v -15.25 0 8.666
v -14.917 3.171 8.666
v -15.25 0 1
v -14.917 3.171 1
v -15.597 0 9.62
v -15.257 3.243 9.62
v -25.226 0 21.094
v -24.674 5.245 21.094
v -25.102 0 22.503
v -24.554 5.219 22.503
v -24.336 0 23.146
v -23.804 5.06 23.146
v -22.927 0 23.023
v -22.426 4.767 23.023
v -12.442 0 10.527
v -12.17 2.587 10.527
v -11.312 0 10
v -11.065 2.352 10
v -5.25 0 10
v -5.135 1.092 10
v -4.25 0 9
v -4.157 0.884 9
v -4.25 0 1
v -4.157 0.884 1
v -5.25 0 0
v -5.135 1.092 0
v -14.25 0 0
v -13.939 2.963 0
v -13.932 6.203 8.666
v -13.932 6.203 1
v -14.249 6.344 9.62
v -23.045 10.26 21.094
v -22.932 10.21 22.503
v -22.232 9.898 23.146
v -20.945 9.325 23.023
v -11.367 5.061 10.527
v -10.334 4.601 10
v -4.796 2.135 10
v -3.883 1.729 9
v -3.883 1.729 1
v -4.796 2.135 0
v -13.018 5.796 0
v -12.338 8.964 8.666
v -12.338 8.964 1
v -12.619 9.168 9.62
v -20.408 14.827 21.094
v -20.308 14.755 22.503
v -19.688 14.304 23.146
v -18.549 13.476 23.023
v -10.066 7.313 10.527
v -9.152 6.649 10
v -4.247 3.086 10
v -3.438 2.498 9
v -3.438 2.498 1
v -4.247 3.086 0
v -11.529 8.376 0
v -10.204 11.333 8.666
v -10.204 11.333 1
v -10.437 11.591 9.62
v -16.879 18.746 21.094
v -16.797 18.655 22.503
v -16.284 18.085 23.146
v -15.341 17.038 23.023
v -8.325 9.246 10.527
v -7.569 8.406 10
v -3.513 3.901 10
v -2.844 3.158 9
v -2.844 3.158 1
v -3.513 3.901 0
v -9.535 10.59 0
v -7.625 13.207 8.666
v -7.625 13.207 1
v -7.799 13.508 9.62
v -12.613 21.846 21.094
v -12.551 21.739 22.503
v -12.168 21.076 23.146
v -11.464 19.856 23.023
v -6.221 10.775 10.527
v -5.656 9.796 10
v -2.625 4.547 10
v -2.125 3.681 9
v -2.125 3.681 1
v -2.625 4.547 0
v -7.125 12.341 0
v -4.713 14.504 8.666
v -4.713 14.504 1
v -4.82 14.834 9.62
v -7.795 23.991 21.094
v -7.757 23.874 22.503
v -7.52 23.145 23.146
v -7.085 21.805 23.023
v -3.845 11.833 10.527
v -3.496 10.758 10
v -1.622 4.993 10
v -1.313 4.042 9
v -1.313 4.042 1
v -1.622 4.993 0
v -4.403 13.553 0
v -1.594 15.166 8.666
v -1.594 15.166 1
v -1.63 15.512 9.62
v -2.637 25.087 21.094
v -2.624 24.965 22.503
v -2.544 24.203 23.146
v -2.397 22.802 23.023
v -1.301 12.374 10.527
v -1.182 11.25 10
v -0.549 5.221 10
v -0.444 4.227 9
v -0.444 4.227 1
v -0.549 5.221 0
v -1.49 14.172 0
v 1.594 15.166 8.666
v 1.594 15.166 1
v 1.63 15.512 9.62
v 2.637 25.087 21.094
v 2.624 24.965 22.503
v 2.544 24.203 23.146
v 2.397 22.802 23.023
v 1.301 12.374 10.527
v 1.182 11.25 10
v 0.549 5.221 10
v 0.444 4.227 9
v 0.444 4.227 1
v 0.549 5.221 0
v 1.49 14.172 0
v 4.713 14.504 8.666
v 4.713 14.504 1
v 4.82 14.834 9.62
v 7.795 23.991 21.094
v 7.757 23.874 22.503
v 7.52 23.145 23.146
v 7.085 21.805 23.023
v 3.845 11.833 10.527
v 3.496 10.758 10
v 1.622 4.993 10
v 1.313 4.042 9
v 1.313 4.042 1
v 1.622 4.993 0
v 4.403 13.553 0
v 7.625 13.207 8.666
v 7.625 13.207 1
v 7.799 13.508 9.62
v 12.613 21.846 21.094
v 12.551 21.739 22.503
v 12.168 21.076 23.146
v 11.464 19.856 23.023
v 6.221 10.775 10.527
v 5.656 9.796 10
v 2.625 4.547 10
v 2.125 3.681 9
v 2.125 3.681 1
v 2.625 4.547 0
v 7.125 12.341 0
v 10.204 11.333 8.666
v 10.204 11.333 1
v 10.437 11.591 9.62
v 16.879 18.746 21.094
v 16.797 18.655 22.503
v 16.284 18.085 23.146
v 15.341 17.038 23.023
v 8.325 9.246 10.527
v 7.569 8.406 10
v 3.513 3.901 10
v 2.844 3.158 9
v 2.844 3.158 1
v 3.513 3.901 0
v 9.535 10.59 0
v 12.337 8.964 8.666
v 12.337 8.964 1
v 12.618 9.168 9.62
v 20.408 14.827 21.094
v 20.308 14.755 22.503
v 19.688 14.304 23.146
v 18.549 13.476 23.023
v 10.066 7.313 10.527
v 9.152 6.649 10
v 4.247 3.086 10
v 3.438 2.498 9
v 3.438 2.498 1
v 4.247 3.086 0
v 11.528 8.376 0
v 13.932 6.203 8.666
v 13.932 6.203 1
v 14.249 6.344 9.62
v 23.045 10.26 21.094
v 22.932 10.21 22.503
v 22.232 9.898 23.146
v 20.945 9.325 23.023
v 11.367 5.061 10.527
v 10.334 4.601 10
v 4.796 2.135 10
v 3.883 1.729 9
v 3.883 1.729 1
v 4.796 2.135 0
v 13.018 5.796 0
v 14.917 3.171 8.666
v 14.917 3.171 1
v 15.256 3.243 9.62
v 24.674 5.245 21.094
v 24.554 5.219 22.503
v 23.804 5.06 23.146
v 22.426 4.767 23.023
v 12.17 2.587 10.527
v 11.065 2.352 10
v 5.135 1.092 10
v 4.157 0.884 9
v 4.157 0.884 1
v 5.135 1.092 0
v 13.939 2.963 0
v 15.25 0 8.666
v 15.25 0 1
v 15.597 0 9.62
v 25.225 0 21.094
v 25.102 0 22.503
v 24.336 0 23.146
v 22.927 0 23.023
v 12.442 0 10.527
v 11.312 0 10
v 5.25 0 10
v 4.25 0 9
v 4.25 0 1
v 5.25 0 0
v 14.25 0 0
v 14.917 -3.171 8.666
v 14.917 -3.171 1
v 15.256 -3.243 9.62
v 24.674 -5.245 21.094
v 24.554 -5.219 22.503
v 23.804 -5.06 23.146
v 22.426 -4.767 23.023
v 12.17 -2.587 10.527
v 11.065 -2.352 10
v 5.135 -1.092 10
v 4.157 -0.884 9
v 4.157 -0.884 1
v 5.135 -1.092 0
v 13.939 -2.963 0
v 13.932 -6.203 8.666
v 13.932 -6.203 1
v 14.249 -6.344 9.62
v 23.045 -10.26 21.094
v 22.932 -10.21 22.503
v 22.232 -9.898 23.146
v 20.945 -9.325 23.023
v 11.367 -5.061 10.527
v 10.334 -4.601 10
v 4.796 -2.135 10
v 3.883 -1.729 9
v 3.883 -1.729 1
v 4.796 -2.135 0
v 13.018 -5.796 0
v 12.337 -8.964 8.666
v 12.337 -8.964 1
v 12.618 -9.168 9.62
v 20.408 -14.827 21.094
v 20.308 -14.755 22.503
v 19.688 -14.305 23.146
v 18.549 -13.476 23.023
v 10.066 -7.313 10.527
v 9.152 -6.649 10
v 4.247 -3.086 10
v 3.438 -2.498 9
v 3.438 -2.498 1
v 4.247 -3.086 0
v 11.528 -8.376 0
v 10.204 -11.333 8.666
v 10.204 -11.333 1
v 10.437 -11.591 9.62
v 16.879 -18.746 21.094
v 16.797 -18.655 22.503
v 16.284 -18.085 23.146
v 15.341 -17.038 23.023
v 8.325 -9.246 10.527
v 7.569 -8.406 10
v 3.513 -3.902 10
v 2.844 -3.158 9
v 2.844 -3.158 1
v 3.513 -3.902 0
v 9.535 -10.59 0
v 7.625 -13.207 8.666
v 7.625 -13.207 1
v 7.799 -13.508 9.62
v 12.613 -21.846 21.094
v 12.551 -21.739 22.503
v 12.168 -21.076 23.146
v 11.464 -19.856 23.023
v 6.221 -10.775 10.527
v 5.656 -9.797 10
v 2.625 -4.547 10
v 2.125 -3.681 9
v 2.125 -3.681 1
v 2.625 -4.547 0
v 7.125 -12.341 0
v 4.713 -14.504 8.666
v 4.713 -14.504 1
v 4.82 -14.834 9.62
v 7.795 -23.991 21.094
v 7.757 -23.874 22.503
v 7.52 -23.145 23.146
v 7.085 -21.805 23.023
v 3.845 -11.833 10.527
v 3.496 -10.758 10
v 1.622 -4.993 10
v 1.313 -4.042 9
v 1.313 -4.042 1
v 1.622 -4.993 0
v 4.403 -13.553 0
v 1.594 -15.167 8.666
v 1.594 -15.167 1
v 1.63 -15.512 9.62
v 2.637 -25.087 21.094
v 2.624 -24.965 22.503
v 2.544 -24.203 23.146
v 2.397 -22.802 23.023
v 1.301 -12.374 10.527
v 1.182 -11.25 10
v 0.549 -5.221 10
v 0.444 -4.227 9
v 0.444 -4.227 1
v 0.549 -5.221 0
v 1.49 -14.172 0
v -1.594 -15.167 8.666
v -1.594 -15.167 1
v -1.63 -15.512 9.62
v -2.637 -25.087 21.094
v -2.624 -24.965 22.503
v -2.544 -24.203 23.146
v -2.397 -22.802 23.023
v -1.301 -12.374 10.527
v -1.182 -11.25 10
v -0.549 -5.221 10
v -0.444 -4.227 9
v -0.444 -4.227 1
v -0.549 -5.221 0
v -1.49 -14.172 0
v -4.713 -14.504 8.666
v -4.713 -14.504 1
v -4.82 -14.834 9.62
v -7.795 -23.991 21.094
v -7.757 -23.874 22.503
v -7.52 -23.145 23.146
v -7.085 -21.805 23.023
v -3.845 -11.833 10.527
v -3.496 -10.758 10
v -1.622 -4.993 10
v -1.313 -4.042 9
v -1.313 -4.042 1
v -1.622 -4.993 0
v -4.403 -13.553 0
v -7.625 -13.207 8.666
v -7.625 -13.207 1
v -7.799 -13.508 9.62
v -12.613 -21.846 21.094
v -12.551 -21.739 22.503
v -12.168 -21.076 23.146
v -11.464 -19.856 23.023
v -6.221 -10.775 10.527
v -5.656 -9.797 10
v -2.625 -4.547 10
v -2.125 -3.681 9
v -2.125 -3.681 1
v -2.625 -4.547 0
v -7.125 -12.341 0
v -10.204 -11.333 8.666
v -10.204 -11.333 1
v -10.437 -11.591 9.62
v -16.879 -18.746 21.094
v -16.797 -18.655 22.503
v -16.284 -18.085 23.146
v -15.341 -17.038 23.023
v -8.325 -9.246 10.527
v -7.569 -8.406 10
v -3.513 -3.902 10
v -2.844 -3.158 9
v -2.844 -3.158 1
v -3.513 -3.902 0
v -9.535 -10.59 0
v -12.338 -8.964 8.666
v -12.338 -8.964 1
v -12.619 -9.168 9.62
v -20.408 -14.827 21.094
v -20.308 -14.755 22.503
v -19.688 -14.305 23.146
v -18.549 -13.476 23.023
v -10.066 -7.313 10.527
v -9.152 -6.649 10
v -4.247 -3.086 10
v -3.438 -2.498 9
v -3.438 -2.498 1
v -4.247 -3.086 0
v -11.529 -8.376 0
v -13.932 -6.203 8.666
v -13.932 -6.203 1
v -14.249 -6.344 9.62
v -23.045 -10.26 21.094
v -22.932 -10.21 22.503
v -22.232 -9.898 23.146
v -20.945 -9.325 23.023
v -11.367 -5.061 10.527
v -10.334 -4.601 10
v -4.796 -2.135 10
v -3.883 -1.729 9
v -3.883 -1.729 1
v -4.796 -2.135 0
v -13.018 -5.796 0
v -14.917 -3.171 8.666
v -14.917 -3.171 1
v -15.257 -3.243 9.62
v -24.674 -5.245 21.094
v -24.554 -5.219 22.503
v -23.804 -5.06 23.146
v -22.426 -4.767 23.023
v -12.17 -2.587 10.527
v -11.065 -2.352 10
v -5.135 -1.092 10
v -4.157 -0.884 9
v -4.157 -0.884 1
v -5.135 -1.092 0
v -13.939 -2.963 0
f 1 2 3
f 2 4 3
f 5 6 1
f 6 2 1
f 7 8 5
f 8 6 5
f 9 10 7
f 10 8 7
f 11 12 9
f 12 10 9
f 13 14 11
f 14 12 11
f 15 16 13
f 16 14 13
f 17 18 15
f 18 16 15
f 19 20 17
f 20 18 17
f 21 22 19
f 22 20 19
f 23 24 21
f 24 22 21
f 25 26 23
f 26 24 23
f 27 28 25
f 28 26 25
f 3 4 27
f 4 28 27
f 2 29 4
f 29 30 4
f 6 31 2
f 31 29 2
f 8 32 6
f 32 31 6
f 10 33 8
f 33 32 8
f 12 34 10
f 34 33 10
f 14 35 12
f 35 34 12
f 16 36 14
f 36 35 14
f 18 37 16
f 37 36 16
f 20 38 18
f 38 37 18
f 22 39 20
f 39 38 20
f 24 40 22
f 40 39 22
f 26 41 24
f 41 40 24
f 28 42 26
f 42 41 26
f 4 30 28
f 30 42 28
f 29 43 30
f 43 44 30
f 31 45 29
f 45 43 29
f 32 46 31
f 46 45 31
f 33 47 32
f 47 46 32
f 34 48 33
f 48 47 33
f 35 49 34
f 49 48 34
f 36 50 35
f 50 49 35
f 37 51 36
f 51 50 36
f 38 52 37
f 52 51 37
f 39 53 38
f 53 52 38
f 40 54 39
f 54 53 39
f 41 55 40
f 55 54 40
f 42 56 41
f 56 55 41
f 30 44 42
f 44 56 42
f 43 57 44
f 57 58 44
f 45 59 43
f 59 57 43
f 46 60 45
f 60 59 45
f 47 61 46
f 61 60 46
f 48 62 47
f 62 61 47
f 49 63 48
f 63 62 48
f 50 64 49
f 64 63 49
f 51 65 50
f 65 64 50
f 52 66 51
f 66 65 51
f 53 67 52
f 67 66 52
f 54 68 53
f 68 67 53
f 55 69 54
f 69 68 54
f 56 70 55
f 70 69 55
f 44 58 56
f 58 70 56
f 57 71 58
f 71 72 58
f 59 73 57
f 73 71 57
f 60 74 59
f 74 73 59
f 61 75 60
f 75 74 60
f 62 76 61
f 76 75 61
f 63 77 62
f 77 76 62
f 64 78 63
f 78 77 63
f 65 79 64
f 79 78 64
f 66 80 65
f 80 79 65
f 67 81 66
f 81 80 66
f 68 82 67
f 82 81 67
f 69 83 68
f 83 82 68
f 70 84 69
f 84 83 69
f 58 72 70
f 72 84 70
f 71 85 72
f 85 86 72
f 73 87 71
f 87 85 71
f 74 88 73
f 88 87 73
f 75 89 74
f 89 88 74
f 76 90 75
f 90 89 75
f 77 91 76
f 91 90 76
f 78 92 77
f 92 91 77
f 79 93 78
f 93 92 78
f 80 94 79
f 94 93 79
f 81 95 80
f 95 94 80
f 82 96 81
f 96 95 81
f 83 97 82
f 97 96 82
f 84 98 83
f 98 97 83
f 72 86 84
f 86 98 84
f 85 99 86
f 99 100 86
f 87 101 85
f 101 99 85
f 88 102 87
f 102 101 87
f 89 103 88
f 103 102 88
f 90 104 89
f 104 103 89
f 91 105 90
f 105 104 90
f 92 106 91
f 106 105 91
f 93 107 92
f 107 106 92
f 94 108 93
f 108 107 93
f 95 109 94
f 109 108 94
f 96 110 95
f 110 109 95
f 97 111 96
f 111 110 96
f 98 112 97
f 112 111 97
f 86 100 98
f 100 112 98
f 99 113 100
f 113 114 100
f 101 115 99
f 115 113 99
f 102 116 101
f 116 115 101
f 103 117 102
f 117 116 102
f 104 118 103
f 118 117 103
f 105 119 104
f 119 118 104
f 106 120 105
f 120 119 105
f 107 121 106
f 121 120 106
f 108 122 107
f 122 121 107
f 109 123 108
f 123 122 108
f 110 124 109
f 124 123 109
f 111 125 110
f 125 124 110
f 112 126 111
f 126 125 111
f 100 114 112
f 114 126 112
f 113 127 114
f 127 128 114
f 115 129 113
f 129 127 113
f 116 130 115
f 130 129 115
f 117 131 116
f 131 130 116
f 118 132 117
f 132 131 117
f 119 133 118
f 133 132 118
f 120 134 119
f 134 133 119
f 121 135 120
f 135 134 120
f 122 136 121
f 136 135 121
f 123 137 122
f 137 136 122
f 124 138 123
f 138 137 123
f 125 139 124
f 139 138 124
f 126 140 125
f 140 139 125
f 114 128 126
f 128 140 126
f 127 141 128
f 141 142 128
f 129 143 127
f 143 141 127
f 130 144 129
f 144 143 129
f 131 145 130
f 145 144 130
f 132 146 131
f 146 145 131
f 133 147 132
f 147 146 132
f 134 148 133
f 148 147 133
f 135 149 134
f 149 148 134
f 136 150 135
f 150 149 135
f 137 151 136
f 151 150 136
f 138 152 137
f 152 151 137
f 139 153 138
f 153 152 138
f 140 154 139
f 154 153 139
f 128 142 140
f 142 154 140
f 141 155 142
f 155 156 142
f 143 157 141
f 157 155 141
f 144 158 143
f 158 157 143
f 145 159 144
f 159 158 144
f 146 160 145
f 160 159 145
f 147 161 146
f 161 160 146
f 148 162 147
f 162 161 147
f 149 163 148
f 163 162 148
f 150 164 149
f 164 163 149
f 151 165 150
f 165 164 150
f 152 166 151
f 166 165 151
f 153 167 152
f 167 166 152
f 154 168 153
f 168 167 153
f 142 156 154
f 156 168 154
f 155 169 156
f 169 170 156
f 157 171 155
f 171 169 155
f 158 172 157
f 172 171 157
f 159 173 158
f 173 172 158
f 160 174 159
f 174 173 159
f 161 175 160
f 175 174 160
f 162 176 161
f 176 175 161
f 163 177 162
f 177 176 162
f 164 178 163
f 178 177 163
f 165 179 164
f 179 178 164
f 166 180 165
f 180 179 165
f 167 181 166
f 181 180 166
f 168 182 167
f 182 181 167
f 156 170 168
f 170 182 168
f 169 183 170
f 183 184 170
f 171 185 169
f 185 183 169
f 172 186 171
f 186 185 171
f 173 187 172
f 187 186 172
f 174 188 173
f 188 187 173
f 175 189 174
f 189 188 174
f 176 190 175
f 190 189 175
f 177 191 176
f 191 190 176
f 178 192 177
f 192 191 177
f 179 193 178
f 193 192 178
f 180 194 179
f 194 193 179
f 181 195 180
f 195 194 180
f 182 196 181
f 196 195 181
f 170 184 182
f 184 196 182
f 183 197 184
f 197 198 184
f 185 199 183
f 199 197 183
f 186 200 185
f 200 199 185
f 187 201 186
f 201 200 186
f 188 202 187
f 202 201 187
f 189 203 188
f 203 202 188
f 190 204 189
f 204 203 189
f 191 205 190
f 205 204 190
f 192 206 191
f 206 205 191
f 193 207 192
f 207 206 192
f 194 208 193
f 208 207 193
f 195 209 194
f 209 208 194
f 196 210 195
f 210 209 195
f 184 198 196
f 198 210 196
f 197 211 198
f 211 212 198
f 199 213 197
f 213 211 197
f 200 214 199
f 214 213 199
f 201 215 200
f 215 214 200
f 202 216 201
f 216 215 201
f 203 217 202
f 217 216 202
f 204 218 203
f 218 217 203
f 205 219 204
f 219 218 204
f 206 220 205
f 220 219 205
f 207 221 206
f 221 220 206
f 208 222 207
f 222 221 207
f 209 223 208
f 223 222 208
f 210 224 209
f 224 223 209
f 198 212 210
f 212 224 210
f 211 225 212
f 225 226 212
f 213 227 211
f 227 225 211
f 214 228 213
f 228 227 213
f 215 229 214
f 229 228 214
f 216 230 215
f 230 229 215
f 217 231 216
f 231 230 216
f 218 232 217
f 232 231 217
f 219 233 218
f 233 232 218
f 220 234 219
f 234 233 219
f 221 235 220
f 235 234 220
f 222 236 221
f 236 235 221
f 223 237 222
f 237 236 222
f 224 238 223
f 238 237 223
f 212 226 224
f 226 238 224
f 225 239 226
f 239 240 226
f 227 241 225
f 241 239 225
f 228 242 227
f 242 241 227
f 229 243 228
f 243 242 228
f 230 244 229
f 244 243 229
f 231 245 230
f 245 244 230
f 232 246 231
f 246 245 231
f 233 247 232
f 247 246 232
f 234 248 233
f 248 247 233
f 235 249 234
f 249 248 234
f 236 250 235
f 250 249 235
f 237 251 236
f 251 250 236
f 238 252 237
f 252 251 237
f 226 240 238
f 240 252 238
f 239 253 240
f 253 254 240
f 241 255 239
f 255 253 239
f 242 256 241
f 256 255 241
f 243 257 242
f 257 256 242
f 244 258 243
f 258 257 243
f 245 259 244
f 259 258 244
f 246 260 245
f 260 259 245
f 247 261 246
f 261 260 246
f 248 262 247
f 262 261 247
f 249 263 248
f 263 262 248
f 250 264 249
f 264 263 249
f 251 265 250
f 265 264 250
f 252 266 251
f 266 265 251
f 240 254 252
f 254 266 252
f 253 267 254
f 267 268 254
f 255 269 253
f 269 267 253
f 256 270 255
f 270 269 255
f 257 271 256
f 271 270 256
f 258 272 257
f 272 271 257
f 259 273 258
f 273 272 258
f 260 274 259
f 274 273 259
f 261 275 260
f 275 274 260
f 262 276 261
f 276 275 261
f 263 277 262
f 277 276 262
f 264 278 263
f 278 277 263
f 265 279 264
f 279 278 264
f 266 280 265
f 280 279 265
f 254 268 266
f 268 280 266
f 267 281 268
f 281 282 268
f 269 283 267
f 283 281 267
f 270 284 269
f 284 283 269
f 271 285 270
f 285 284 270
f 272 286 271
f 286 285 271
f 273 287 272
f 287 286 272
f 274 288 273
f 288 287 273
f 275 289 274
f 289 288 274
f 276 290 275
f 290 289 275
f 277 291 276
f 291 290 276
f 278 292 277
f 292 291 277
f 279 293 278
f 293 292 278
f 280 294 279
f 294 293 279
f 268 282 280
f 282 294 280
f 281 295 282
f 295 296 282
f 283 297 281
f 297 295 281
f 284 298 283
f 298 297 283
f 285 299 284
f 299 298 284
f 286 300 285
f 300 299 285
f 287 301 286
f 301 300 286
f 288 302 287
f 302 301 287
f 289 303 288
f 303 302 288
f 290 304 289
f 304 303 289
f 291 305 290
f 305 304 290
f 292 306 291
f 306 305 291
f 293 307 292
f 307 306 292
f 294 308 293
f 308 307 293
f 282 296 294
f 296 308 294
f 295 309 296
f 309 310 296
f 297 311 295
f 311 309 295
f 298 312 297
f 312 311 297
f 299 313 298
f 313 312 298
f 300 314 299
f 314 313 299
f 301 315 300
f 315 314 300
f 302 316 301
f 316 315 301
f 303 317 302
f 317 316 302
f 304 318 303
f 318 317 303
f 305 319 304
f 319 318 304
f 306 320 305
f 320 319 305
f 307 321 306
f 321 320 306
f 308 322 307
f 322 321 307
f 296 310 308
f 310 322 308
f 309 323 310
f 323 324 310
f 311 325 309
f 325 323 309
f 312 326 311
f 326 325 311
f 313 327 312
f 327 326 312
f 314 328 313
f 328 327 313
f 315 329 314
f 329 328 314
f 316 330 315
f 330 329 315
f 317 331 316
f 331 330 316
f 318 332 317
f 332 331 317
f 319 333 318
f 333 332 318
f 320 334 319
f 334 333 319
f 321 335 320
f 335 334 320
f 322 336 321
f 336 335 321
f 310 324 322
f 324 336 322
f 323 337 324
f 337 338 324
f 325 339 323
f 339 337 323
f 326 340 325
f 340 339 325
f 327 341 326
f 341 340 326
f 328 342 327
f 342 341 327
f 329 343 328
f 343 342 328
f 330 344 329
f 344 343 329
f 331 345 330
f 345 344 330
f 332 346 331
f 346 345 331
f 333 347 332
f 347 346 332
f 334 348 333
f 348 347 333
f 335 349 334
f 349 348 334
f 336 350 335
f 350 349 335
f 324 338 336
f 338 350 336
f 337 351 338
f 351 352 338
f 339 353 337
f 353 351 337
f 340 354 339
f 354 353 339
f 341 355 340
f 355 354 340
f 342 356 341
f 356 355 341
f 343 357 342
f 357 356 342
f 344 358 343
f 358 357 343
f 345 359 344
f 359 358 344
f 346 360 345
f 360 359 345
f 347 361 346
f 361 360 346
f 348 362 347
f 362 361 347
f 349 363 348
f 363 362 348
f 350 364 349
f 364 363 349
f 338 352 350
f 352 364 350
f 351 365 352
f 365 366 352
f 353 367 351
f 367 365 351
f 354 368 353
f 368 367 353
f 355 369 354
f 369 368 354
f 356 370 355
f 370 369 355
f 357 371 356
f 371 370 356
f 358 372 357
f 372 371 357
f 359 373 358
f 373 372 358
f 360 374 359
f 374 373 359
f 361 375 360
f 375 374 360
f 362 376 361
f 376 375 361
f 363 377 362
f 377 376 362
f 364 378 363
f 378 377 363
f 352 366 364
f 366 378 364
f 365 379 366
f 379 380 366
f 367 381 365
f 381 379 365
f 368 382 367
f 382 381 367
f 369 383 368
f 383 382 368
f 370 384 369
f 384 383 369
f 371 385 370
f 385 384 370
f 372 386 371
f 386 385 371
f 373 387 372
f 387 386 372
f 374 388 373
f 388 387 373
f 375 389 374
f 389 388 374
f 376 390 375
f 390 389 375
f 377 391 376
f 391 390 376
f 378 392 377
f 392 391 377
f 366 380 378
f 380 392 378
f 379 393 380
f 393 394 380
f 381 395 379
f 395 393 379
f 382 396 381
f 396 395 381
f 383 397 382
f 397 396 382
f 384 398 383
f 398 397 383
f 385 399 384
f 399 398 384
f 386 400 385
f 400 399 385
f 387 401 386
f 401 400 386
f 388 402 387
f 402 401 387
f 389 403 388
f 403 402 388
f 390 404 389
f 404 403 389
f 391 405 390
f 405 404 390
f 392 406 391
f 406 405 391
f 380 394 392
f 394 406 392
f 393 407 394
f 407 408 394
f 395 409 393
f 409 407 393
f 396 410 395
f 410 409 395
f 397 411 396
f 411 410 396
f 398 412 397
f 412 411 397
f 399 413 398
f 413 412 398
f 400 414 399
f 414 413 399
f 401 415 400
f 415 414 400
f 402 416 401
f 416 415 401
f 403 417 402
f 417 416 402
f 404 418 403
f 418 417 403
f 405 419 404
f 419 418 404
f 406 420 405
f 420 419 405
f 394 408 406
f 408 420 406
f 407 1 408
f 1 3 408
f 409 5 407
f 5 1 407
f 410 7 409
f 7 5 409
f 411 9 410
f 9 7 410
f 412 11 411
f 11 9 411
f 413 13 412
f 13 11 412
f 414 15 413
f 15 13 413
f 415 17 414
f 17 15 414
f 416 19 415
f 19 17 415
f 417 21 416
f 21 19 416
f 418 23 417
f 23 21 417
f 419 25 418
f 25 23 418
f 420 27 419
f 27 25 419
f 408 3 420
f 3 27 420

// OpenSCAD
rotate_extrude()offset(1) offset(-2)offset(1 ){
    translate ([4.25,0]) square([11,10]);
translate ([12,10]) rotate(-40)square([3,18]);}
